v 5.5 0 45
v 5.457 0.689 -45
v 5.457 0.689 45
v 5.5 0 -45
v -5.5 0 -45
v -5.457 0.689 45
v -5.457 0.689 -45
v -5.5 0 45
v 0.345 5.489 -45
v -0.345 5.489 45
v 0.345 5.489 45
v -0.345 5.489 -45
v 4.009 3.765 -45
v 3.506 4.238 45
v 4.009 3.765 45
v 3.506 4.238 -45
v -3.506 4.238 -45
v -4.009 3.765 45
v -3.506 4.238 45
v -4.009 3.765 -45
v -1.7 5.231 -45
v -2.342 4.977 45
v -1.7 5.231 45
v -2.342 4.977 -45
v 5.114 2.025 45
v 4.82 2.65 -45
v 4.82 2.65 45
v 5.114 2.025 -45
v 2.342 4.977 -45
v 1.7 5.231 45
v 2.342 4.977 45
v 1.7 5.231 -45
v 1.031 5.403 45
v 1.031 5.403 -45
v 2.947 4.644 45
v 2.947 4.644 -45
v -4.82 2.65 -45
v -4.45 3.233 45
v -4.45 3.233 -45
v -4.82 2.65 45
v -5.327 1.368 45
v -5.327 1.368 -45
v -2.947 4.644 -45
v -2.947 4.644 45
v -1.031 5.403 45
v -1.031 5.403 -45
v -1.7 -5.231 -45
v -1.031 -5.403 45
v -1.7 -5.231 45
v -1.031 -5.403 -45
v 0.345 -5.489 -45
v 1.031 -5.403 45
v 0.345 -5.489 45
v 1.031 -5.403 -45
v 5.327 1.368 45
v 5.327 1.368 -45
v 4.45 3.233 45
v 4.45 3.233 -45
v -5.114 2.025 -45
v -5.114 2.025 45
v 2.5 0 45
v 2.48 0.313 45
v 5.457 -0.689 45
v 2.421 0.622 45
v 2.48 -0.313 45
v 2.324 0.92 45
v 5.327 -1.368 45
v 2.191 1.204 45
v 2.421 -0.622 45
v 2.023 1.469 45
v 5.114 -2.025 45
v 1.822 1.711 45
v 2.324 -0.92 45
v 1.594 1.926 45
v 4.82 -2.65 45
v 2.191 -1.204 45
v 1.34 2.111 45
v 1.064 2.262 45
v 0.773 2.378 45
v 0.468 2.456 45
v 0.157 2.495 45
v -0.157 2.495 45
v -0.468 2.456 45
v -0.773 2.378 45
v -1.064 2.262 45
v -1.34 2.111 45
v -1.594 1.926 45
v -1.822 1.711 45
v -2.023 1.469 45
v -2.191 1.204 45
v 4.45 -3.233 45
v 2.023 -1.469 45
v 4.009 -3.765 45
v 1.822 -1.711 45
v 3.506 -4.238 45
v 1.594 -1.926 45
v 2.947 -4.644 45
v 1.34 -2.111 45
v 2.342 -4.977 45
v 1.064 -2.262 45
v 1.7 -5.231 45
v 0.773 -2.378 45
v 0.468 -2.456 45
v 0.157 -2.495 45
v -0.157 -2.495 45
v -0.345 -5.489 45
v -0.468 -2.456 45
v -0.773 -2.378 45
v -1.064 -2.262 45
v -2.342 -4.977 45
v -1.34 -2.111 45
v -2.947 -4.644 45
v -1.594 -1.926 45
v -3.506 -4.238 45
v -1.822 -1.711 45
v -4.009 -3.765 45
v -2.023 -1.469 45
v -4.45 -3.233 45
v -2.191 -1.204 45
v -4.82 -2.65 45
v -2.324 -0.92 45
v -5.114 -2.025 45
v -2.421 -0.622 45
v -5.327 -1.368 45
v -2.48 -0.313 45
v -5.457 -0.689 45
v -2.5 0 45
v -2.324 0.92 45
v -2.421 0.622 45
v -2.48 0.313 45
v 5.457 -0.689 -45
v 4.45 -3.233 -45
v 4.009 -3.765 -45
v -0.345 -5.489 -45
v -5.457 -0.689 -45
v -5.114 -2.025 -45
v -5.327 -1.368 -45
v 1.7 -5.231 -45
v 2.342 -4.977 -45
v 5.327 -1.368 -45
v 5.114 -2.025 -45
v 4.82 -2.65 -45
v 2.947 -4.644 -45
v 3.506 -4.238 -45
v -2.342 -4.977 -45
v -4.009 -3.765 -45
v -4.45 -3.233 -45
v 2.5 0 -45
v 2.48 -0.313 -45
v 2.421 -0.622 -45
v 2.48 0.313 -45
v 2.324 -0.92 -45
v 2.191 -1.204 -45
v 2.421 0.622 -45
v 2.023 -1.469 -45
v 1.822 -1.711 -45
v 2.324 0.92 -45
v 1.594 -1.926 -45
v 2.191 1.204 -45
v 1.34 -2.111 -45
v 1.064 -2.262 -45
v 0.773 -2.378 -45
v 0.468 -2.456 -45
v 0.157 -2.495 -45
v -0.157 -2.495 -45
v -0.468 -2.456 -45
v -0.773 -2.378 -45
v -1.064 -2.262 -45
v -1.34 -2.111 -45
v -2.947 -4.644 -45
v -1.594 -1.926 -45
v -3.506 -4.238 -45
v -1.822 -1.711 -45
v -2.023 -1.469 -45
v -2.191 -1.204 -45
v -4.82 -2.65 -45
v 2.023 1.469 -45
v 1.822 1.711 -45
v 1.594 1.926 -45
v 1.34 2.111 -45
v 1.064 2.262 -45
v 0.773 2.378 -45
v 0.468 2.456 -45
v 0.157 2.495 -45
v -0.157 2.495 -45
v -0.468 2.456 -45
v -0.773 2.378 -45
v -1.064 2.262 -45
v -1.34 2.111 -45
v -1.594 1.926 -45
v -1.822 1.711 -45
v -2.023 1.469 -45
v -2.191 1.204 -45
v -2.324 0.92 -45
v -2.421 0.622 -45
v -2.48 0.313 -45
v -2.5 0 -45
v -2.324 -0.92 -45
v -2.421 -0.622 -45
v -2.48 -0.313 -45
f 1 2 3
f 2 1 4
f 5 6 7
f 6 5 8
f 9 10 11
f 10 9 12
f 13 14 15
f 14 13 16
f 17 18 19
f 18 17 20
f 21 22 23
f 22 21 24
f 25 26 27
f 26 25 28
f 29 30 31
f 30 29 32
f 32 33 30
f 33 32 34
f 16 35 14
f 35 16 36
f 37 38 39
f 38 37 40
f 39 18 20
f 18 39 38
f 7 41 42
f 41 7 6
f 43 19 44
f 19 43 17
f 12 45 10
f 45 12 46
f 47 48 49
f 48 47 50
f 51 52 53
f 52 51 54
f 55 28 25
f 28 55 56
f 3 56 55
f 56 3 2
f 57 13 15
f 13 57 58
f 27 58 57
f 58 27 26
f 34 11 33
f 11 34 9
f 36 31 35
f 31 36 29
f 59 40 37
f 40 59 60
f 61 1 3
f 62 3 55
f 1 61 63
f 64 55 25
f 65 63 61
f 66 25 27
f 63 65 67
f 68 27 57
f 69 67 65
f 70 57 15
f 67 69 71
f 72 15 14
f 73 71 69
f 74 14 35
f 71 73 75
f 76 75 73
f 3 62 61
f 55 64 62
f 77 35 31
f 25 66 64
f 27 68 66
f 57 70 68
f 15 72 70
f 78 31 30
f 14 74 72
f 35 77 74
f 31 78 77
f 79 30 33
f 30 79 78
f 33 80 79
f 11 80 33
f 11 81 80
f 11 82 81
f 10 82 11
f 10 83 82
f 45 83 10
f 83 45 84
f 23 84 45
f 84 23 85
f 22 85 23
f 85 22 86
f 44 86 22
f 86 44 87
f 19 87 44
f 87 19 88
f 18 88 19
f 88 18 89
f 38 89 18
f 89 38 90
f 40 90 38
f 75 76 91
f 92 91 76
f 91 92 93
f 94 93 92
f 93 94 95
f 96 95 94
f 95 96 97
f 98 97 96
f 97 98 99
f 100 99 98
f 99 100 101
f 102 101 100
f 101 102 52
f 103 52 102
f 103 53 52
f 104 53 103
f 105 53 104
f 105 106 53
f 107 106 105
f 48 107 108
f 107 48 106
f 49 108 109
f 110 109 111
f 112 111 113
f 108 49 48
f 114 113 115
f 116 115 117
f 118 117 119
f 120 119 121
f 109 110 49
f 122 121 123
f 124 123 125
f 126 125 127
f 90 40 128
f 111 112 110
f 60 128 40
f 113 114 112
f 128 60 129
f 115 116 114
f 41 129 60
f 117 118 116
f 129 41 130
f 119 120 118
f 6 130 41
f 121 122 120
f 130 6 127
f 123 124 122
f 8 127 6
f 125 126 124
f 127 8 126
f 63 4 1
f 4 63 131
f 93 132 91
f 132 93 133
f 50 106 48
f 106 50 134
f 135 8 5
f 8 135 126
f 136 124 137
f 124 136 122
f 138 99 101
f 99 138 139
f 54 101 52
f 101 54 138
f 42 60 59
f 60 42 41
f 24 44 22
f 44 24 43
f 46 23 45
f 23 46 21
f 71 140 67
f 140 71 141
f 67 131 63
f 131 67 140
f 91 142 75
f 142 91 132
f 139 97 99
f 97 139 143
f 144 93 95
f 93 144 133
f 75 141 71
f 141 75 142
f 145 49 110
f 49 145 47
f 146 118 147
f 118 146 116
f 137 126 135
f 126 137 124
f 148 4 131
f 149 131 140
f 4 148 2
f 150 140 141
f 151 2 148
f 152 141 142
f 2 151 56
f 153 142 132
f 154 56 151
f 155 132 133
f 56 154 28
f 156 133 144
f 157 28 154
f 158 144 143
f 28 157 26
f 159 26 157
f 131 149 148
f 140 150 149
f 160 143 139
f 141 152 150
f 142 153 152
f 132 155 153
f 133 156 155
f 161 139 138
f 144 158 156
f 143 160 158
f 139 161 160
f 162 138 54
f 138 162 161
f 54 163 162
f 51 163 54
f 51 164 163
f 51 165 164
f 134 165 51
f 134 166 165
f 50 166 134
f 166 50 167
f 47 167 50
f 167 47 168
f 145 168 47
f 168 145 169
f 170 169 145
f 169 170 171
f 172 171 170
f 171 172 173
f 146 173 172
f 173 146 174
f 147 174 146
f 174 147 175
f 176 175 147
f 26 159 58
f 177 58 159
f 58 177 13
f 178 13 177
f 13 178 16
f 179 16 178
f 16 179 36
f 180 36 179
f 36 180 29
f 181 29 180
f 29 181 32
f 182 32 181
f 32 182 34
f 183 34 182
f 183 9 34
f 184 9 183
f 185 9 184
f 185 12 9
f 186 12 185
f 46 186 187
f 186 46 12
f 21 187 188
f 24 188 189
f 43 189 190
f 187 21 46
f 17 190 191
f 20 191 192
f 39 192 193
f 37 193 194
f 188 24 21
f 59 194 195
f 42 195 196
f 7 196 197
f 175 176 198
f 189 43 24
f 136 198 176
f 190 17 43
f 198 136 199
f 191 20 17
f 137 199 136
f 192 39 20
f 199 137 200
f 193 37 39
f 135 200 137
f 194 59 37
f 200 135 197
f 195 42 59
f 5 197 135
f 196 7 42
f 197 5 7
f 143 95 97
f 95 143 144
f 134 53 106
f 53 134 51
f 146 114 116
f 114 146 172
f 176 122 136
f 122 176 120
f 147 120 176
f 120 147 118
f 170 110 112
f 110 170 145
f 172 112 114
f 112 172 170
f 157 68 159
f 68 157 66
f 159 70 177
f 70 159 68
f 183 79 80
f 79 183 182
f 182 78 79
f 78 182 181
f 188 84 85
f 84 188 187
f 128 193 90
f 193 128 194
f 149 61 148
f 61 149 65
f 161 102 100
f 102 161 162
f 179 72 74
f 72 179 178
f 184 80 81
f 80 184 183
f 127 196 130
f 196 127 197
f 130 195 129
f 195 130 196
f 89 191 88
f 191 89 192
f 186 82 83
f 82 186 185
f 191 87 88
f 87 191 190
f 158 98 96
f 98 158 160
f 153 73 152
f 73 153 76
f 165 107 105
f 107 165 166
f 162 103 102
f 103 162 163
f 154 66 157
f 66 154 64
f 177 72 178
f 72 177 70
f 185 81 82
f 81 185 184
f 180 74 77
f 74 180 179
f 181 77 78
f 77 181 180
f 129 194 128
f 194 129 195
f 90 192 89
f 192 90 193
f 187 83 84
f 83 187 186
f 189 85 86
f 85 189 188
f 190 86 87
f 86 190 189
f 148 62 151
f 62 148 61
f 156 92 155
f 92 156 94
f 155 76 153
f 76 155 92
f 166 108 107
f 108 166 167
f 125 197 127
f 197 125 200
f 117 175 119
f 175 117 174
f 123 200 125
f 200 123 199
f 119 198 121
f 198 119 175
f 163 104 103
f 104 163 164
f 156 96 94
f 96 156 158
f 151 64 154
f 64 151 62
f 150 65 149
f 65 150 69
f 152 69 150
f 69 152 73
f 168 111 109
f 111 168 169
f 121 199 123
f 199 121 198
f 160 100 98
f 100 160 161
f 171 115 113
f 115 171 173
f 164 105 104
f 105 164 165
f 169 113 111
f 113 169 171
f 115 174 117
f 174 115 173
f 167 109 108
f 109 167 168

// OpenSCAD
$fn = 50;


difference() {
	union() {
		translate(v = [0, 0, -45.0000000000]) {
			cylinder(h = 90, r = 5.5000000000);
		}
	}
	union() {
		translate(v = [0, 0, -100.0000000000]) {
			cylinder(h = 200, r = 2.5000000000);
		}
	}
}
